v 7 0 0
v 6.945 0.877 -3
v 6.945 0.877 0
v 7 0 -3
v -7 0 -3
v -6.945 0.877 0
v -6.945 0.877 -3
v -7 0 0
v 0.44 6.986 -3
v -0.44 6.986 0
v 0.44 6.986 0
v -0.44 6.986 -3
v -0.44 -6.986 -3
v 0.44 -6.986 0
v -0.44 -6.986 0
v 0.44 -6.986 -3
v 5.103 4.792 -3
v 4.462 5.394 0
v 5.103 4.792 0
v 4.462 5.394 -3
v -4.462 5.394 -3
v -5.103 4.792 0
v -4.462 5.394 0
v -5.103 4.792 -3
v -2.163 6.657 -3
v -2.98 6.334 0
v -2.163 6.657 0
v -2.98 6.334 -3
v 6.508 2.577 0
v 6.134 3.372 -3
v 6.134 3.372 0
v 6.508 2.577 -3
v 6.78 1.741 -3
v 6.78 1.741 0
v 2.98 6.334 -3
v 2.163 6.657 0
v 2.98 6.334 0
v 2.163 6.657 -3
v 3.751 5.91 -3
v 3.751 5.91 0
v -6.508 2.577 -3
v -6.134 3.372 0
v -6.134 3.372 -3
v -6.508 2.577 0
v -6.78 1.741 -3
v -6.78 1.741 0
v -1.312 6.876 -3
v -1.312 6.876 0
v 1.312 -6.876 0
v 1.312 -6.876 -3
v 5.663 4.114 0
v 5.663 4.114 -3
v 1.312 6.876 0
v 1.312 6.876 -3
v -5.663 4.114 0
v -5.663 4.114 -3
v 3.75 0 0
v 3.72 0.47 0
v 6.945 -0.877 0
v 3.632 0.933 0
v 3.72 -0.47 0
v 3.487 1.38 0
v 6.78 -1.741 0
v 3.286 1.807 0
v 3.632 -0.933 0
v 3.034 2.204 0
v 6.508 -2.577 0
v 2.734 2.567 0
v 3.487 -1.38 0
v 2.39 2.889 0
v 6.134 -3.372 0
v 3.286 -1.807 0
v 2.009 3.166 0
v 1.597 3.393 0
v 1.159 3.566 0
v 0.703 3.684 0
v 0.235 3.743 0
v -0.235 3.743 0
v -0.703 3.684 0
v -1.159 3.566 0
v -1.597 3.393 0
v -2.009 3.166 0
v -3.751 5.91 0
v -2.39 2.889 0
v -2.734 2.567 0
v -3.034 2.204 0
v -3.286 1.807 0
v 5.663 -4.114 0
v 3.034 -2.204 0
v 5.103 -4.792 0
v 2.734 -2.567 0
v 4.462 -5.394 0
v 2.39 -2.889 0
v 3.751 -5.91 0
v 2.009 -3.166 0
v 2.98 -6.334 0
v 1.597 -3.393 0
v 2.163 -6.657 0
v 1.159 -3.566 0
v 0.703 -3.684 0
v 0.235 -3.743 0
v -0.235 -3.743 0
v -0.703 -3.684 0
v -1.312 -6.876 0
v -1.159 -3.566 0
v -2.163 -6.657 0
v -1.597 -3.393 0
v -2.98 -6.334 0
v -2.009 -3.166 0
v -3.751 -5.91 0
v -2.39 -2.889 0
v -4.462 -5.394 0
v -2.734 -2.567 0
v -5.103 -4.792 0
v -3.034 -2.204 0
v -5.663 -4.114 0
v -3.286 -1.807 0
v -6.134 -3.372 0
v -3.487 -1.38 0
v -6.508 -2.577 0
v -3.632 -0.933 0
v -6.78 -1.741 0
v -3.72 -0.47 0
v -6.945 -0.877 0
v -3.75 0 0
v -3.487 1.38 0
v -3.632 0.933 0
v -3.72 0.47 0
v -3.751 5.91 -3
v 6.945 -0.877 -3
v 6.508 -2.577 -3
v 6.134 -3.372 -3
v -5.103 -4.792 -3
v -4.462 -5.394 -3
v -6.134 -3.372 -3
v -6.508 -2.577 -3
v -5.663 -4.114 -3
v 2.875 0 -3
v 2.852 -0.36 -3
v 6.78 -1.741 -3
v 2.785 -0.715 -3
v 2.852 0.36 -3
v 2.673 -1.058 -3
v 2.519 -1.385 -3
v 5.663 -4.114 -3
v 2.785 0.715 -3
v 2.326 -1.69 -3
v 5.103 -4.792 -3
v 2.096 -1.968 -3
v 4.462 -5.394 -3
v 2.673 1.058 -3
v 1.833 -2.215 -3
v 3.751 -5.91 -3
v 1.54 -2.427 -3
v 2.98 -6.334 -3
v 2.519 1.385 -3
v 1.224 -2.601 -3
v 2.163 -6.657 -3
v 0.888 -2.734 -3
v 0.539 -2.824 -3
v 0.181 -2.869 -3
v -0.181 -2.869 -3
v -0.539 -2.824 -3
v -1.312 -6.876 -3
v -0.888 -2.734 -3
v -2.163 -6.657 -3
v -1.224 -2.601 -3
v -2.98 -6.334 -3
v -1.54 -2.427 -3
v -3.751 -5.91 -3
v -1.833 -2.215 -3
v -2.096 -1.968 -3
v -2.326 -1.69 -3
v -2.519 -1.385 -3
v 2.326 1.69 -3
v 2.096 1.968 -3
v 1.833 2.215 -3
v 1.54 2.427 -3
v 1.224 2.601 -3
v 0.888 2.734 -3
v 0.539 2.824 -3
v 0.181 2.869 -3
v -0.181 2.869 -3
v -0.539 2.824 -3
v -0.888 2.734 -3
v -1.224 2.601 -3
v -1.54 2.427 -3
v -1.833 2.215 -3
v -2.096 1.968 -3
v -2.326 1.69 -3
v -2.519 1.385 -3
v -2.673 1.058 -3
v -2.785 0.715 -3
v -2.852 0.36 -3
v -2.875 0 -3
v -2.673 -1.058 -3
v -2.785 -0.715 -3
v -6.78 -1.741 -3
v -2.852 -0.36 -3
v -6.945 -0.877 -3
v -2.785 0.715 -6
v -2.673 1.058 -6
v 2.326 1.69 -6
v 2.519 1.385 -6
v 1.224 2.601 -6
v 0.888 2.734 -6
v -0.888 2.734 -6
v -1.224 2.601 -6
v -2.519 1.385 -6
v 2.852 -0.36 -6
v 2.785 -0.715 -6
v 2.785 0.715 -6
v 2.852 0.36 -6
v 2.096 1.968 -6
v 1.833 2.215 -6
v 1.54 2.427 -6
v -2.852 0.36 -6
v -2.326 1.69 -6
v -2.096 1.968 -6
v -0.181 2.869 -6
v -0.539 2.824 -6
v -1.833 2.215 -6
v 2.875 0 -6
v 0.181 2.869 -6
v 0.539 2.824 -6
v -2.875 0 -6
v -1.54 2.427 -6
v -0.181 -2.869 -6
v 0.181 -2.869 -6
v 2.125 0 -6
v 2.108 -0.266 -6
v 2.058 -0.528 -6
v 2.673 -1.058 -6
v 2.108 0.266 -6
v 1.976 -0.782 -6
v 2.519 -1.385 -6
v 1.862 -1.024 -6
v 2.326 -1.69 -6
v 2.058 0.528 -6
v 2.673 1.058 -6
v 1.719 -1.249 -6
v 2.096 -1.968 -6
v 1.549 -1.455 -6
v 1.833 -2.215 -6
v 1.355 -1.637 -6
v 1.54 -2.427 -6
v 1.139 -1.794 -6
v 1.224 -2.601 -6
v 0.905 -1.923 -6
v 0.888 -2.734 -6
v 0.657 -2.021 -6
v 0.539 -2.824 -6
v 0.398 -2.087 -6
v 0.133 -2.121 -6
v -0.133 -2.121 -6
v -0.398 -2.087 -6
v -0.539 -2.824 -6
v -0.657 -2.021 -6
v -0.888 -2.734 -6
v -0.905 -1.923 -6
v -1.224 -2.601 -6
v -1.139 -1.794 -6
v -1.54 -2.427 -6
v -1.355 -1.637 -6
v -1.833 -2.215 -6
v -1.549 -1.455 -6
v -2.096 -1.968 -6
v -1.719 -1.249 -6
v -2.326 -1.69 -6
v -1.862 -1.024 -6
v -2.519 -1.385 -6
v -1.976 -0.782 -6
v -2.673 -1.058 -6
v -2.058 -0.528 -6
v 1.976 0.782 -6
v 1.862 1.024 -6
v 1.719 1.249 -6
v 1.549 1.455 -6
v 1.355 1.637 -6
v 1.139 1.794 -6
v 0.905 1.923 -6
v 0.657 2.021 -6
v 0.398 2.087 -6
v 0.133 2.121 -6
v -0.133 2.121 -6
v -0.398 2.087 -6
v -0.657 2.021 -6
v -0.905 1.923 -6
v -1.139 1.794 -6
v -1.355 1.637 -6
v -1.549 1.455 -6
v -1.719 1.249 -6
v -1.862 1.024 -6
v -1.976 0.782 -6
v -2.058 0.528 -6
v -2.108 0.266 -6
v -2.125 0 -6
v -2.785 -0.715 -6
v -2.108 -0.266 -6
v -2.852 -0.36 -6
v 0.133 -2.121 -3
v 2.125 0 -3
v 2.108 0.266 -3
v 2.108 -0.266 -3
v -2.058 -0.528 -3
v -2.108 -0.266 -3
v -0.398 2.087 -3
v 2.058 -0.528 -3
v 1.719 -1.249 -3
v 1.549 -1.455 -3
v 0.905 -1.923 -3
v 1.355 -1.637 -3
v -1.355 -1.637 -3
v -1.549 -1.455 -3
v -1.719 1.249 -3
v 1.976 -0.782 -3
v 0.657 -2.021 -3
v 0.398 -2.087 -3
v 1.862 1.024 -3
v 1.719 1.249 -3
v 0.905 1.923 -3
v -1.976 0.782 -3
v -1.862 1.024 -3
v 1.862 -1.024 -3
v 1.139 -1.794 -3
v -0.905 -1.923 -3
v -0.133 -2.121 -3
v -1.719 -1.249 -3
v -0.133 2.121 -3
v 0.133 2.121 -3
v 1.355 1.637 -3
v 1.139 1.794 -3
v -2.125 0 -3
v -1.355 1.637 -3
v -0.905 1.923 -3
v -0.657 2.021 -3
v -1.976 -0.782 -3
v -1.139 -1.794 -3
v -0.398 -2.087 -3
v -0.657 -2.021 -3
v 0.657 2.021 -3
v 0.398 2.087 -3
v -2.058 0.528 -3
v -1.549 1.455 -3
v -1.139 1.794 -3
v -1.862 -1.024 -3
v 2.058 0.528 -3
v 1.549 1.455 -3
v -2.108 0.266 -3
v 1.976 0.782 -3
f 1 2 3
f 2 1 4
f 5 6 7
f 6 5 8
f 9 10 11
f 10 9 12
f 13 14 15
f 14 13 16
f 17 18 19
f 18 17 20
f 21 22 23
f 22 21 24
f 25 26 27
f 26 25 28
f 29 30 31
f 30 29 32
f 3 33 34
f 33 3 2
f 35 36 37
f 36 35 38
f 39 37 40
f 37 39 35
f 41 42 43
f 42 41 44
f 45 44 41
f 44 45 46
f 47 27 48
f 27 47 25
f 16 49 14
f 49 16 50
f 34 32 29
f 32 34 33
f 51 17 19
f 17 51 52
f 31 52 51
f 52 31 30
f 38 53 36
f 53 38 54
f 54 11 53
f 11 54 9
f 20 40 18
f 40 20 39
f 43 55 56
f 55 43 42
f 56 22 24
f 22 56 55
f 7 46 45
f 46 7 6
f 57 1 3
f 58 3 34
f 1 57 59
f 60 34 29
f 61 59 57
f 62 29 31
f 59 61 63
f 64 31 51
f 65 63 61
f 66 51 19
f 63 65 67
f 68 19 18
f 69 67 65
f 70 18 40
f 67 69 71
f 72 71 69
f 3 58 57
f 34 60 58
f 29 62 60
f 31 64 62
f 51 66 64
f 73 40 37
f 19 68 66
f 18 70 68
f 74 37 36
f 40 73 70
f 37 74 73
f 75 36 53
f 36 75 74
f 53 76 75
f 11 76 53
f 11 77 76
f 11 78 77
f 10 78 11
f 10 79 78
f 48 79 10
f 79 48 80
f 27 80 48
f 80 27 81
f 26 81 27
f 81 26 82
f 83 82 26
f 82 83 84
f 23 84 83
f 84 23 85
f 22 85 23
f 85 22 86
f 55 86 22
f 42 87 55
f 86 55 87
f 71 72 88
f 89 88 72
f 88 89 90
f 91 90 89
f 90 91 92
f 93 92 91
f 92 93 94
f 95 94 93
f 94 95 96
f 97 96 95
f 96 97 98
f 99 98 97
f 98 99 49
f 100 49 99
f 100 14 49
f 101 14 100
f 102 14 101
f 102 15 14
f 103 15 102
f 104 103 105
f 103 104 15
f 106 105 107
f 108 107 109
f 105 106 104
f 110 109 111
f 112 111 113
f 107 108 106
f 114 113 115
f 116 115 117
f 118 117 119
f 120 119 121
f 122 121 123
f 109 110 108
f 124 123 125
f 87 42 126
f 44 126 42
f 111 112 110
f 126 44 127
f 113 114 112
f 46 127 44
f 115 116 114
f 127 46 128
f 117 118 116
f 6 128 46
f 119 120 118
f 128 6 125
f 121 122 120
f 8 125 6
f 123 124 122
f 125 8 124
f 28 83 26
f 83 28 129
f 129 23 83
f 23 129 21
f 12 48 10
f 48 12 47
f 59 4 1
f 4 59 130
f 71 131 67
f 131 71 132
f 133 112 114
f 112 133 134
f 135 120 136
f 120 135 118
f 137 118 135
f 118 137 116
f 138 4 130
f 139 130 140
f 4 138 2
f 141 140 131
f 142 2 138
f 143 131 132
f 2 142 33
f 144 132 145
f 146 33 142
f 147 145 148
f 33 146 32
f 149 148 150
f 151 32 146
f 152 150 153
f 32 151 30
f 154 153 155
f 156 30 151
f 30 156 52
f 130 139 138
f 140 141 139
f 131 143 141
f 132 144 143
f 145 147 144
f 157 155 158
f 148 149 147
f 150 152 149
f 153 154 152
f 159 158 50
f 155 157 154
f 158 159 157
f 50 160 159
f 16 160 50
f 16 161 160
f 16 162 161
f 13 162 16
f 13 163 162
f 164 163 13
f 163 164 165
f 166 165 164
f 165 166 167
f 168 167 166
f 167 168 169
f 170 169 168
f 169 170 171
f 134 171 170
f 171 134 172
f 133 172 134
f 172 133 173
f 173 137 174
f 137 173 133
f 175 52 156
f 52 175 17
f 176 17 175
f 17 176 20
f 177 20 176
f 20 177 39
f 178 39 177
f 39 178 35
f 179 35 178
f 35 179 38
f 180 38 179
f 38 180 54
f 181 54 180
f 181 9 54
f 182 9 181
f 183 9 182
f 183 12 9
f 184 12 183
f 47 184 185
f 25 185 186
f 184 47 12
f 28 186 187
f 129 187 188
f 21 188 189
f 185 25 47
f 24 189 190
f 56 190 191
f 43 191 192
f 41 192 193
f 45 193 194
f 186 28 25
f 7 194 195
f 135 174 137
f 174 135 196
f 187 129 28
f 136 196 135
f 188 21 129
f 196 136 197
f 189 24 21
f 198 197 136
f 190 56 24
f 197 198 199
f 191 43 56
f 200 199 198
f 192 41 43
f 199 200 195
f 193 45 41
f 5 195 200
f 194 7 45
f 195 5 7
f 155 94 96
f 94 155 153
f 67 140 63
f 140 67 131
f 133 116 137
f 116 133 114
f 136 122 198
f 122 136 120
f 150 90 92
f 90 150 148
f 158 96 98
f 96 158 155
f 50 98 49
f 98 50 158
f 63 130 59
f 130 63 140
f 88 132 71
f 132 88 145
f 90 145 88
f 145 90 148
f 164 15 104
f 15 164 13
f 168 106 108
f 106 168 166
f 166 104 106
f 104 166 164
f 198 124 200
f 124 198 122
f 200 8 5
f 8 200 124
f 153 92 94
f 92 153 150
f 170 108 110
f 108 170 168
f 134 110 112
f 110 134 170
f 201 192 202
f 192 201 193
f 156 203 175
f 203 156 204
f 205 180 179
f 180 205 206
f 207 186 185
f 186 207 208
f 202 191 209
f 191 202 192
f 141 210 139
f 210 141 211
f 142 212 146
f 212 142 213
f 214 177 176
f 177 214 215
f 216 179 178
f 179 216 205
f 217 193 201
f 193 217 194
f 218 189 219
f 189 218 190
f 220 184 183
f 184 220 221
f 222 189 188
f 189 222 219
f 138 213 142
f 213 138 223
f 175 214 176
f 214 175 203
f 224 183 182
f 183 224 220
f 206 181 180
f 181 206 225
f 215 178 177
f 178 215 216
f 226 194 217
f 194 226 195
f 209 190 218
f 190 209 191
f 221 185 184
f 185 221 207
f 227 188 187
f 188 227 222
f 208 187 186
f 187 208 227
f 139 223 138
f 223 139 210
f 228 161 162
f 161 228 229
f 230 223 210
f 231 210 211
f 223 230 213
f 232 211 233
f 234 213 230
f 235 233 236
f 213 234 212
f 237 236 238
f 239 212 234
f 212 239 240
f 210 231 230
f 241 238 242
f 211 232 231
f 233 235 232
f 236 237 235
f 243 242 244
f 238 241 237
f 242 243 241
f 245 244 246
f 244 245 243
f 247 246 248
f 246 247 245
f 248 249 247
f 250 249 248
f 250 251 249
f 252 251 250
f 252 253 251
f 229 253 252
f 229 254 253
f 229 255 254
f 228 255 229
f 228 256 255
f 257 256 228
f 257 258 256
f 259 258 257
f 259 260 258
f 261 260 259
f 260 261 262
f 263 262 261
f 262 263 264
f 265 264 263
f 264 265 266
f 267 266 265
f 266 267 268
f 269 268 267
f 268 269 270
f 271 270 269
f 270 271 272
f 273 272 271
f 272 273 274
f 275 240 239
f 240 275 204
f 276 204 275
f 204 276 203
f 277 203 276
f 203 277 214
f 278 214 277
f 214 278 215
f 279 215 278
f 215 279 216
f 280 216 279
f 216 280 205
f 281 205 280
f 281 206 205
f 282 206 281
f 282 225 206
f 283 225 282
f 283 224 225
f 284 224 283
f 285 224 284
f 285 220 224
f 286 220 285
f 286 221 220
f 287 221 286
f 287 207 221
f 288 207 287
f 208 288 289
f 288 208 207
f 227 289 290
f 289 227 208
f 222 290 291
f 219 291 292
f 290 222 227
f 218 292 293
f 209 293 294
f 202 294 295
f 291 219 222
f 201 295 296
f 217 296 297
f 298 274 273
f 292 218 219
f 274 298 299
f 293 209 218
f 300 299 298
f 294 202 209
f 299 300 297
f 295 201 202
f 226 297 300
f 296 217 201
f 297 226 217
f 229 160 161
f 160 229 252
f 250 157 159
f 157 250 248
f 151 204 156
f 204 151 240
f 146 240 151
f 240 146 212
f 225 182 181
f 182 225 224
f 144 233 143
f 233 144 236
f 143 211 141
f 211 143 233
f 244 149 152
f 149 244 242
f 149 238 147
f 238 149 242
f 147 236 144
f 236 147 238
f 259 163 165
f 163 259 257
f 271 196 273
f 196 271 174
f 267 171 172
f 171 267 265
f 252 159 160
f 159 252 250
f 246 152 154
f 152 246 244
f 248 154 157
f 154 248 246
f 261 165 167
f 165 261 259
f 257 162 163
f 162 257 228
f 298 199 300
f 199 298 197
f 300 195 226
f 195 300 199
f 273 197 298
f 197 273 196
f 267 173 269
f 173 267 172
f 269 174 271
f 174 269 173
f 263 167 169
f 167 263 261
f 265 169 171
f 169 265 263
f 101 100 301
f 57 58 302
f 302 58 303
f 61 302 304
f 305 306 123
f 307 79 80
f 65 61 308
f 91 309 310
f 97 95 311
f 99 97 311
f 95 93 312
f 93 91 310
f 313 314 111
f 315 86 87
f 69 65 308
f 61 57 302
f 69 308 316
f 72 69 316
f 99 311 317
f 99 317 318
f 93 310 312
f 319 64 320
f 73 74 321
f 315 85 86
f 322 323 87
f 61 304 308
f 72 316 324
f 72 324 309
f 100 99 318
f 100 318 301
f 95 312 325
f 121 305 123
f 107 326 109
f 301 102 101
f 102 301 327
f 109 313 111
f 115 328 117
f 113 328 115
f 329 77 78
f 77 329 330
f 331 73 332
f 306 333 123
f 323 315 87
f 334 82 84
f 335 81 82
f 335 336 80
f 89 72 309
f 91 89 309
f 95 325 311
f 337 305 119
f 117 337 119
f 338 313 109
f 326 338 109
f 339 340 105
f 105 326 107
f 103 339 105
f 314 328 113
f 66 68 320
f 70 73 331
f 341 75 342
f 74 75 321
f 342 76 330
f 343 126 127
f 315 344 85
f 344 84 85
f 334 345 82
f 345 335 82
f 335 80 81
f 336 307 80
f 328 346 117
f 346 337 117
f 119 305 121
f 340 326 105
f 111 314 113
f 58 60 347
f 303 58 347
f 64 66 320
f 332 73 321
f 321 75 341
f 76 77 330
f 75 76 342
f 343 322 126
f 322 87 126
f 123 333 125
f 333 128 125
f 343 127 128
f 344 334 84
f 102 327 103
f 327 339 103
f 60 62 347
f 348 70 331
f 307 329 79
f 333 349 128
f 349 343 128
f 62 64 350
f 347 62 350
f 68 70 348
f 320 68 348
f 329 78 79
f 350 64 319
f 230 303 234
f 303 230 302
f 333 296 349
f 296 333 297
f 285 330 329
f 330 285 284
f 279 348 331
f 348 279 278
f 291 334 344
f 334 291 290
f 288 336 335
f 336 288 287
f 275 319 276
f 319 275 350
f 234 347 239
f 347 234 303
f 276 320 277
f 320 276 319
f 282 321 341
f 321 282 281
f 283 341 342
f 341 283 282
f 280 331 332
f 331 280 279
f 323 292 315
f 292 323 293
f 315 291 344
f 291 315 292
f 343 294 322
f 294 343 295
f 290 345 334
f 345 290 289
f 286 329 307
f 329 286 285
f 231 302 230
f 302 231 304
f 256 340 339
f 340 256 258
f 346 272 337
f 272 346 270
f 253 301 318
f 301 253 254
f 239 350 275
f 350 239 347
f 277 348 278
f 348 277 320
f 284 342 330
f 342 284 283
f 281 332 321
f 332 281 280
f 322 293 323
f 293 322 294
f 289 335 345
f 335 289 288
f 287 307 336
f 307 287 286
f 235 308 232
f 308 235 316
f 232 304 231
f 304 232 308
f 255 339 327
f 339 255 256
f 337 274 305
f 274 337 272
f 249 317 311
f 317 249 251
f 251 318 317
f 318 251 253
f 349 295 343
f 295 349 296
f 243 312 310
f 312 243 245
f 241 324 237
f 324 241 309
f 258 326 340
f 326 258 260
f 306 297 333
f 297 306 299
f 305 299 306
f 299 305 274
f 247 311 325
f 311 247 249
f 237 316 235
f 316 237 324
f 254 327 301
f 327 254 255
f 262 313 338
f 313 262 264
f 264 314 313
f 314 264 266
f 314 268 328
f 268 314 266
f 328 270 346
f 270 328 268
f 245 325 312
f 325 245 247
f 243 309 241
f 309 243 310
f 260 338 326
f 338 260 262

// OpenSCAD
$fn = 50;


difference() {
	union() {
		translate(v = [0, 0, -3.0000000000]) {
			cylinder(h = 3, r = 7.0000000000);
		}
		translate(v = [0, 0, -6.0000000000]) {
			cylinder(h = 6, r = 2.8750000000);
		}
	}
	union() {
		translate(v = [0, 0, 0]) {
			rotate(a = [0, 0, 0]) {
				difference() {
					union() {
						translate(v = [0, 0, -6.0000000000]) {
							cylinder(h = 6, r = 2.0000000000);
						}
						translate(v = [0, 0, -3]) {
							cylinder(h = 3, r1 = 2.1250000000, r2 = 3.7500000000);
						}
						translate(v = [0, 0, -6.0000000000]) {
							cylinder(h = 6, r = 2.1250000000);
						}
						translate(v = [0, 0, -6.0000000000]) {
							cylinder(h = 6, r = 2.0000000000);
						}
					}
					union();
				}
			}
		}
	}
}
